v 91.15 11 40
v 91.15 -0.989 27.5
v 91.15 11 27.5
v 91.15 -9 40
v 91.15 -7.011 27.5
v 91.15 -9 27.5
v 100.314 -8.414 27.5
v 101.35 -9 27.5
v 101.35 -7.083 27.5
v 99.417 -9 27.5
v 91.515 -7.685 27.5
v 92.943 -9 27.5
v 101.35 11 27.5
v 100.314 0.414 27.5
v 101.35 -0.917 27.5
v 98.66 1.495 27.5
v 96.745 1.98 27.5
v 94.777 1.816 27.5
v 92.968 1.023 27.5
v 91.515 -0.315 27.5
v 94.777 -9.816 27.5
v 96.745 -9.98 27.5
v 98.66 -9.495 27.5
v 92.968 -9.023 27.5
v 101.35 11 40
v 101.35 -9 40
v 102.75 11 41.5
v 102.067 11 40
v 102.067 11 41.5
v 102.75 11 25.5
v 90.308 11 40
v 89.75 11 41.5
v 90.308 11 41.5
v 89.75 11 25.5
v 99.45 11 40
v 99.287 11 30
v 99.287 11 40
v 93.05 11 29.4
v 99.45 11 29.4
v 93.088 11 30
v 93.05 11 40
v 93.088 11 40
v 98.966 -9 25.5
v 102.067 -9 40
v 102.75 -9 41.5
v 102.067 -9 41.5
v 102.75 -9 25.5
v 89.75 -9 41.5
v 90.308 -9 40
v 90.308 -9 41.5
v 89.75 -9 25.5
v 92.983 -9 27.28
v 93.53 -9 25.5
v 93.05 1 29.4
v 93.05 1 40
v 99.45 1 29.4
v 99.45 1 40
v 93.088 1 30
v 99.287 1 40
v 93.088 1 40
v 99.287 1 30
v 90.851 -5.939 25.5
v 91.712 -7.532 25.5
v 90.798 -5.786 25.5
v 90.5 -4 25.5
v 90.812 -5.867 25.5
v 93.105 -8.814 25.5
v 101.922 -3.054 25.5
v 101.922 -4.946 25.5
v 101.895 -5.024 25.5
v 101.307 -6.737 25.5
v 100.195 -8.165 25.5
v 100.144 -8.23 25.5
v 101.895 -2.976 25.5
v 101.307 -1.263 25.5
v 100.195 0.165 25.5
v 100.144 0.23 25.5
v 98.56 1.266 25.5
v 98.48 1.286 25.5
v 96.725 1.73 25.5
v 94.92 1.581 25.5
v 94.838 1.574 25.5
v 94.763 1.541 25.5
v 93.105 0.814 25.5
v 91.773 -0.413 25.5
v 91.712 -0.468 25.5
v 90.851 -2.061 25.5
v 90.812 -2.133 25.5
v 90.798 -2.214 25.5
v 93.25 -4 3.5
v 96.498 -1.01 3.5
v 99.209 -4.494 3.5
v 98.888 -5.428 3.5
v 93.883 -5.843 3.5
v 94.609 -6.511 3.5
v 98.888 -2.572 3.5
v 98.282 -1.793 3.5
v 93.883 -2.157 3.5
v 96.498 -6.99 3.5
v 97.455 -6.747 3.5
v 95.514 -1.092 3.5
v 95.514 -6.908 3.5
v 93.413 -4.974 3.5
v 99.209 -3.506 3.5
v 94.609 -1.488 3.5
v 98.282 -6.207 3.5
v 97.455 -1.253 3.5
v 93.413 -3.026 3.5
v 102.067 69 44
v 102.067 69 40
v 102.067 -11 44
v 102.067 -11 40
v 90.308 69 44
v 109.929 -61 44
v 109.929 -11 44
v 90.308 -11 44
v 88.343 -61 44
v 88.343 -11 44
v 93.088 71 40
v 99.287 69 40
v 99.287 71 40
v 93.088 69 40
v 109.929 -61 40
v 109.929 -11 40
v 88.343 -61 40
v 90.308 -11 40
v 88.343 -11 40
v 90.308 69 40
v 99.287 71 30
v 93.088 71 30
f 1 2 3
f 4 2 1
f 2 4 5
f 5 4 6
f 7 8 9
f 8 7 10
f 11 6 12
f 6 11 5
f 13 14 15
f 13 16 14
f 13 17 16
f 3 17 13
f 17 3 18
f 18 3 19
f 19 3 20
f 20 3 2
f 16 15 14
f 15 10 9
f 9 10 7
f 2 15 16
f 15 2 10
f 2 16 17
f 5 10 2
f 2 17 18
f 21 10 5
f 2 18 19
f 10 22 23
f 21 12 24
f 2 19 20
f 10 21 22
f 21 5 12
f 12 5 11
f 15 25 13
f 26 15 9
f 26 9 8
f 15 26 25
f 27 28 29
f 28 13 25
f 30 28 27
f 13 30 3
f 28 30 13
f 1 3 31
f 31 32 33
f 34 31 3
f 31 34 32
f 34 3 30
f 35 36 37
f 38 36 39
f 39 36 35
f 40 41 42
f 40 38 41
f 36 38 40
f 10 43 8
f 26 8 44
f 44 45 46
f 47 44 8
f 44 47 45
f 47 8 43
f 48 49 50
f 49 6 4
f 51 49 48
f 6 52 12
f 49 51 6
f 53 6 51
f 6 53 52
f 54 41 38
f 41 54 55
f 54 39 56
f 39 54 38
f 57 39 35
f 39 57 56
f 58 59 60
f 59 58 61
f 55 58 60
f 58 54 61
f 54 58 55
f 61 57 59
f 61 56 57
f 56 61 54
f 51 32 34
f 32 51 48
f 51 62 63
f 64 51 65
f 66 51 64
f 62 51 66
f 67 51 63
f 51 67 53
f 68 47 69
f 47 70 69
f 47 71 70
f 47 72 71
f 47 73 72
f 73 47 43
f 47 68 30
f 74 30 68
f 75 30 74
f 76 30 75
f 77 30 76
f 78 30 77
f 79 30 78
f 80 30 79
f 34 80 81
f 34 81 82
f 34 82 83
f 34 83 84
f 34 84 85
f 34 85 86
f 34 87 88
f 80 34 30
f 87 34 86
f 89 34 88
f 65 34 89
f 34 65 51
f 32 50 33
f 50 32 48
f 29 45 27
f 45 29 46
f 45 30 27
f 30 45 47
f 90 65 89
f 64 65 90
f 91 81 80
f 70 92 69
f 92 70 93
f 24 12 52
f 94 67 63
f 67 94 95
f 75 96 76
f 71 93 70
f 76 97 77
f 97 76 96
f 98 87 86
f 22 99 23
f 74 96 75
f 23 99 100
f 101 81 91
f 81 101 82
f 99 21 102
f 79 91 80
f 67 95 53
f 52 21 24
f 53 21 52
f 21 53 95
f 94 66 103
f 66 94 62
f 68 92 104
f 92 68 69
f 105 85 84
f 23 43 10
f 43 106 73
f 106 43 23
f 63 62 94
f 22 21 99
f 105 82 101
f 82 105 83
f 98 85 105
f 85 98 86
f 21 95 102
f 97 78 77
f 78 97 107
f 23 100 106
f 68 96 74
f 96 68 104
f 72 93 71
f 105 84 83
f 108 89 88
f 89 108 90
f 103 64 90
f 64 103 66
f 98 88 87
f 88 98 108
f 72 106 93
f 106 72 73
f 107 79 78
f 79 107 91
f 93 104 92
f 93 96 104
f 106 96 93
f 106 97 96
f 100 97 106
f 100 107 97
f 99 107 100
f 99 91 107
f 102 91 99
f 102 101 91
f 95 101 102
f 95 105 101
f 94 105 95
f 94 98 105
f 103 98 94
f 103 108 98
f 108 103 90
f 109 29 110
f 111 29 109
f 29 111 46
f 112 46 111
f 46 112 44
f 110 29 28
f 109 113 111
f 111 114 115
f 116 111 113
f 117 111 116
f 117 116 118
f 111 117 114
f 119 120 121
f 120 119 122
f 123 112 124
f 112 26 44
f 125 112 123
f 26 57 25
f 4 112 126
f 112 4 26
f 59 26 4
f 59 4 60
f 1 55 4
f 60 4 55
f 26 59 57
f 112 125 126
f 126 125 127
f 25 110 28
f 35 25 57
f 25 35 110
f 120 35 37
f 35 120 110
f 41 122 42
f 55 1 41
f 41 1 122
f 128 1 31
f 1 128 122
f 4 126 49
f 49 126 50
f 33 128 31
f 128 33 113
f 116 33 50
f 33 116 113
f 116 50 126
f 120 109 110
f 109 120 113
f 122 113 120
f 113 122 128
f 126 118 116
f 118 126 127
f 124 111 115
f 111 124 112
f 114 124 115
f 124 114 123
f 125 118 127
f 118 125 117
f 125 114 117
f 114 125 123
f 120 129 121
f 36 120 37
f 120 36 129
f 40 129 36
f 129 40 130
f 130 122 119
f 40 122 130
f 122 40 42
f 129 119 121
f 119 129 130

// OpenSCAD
// file: irkem_hammerTips_v0.scad
tol = 0.2;
extrWall = 1.7+tol;
extrH = 12.9+tol;//12.6+tol;
extrW = 10+tol;

hammerY = 20;
hammerZ = 24;

module hammerTips(){
translate([0,-5,0]) cylinder(hammerZ,6,3);
difference(){
    translate([-6.5,-10,-14]) cube([13,hammerY,16]);
    union(){uChan();translate([-extrW/2,-hammerY/2,-extrH]) cube([extrW,hammerY/2,extrH]);
}
}
module uChan(){
difference(){
    translate([-extrW/2,-hammerY/2,-extrH]) cube([extrW,hammerY,extrH]);
    translate([-extrW/2+extrWall,-hammerY/2,-extrH-extrWall]) cube([extrW-2*extrWall,hammerY,extrH]);
}
}
}

//hammerTips();
// main file
include <irkem_hammerTips_v0.scad>

xO = -6;
yO = -11;
zO = 40;

kH = 4;
bH = 10;
wL = 50;
bL = 80;
oct = 6.5 * 25.4;
gap = 2;
n_oct = 1;//5;
n_keys = 12 * n_oct;
oset = -1;

sharpFlag = 1;

for (k = [7]){//:1:(n_keys-1)]){
    //
    translate([k*13.75+6.0+xO,12+yO,-12.5+zO]) rotate([0,180,0]) hammerTips();
}

for (k = [0:1:(n_oct-1)]){

//C:
//color("ivory") translate([k*oct+0+xO,0+yO,0+zO]) cube([oct*1/12-gap,bL,kH]);
//color("ivory") translate([k*oct+0+xO,-wL+yO,0+zO]) cube([oct*1/7-gap,wL,kH]);

////C#:
//if (sharpFlag){    
//color("black") translate([k*oct+oct*1/12+xO,gap+yO,0+zO]) cube([oct*1/12-gap,bL,kH+bH]);
//}//

////D:
//color("ivory") translate([k*oct+oct*2/12+xO,0+yO,0+zO]) cube([oct*1/12-gap,bL,kH]);
//color("ivory") translate([k*oct+oct*1/7+xO,-wL+yO,0+zO]) cube([oct*1/7-gap,wL,kH]);//

////D#:
//if (sharpFlag){
//color("black") translate([k*oct+oct*3/12+xO,gap+yO,0+zO]) cube([oct*1/12-gap,bL,kH+bH]);
//}//

////E:
//color("ivory") translate([k*oct+oct*4/12+xO,0+yO,0+zO]) cube([2+oct*1/12-gap,bL,kH]);
//color("ivory") translate([k*oct+oct*2/7+xO,-wL+yO,0+zO]) cube([oct*1/7-gap,wL,kH]);//

////F:
//color("ivory") difference(){
//    translate([k*oct+oct*3/7+xO,-wL+yO,0+zO]) cube([oct*1/7-gap,wL+bL,kH]);
//    translate([k*oct+oct*6/12-2+xO,0+yO,0+zO]) cube([4+oct*(1/7-1/12)-gap,bL,kH]);
//}
//color("ivory") translate([k*oct+oct*3/7+xO,-wL+yO,0+zO]) cube([oct*1/7-gap,wL,kH]);//

////F#:
//if (sharpFlag){
//color("black") translate([k*oct+oct*6/12+xO,gap+yO,0+zO]) cube([oct*1/12-gap,bL,kH+bH]);
//}//

////G:
color("ivory") translate([k*oct+oct*7/12+xO,0+yO,0+zO]) cube([oct*1/12-gap,bL,kH]);
color("ivory") translate([k*oct+oct*4/7+xO,-wL+yO,0+zO]) cube([oct*1/7-gap,wL,kH]);//

////G#:
//if (sharpFlag){
//color("black") translate([k*oct+oct*8/12+xO,gap+yO,0+zO]) cube([oct*1/12-gap,bL,kH+bH]);
//}//

////A:
//color("ivory") translate([k*oct+oct*9/12+xO,0+yO,0+zO]) cube([oct*1/12-gap,bL,kH]);
//color("ivory") translate([k*oct+oct*5/7+xO,-wL+yO,0+zO]) cube([oct*1/7-gap,wL,kH]);//

////A#:
//if (sharpFlag){
//color("black") translate([k*oct+oct*10/12+xO,gap+yO,0+zO]) cube([oct*1/12-gap,bL,kH+bH]);
//}//

////B:
//color("ivory") translate([k*oct+oct*11/12+xO,0+yO,0+zO]) cube([oct*1/12-gap,bL,kH]);
//color("ivory") translate([k*oct+oct*6/7+xO,-wL+yO,0+zO]) cube([oct*1/7-gap,wL,kH]);//

}

for (i = [7]){//,2,4,5,7,9,11]){//[0:1:(n_keys-1)]){
    translate([oset+oct*i/12+(oct*1/12-6.2)/2+xO,2+10+yO,-10+zO]) cube([6.2,bL-10,10]);
}

//if (sharpFlag){
//    for (i = [1,3,6,8,10]){//[0:1:(n_keys-1)]){
//    translate([oset+oct*i/12+(oct*1/12-6.2)/2+xO,2+10+yO,-10+zO]) cube([6.2,bL-10,10]);
//}
//}
